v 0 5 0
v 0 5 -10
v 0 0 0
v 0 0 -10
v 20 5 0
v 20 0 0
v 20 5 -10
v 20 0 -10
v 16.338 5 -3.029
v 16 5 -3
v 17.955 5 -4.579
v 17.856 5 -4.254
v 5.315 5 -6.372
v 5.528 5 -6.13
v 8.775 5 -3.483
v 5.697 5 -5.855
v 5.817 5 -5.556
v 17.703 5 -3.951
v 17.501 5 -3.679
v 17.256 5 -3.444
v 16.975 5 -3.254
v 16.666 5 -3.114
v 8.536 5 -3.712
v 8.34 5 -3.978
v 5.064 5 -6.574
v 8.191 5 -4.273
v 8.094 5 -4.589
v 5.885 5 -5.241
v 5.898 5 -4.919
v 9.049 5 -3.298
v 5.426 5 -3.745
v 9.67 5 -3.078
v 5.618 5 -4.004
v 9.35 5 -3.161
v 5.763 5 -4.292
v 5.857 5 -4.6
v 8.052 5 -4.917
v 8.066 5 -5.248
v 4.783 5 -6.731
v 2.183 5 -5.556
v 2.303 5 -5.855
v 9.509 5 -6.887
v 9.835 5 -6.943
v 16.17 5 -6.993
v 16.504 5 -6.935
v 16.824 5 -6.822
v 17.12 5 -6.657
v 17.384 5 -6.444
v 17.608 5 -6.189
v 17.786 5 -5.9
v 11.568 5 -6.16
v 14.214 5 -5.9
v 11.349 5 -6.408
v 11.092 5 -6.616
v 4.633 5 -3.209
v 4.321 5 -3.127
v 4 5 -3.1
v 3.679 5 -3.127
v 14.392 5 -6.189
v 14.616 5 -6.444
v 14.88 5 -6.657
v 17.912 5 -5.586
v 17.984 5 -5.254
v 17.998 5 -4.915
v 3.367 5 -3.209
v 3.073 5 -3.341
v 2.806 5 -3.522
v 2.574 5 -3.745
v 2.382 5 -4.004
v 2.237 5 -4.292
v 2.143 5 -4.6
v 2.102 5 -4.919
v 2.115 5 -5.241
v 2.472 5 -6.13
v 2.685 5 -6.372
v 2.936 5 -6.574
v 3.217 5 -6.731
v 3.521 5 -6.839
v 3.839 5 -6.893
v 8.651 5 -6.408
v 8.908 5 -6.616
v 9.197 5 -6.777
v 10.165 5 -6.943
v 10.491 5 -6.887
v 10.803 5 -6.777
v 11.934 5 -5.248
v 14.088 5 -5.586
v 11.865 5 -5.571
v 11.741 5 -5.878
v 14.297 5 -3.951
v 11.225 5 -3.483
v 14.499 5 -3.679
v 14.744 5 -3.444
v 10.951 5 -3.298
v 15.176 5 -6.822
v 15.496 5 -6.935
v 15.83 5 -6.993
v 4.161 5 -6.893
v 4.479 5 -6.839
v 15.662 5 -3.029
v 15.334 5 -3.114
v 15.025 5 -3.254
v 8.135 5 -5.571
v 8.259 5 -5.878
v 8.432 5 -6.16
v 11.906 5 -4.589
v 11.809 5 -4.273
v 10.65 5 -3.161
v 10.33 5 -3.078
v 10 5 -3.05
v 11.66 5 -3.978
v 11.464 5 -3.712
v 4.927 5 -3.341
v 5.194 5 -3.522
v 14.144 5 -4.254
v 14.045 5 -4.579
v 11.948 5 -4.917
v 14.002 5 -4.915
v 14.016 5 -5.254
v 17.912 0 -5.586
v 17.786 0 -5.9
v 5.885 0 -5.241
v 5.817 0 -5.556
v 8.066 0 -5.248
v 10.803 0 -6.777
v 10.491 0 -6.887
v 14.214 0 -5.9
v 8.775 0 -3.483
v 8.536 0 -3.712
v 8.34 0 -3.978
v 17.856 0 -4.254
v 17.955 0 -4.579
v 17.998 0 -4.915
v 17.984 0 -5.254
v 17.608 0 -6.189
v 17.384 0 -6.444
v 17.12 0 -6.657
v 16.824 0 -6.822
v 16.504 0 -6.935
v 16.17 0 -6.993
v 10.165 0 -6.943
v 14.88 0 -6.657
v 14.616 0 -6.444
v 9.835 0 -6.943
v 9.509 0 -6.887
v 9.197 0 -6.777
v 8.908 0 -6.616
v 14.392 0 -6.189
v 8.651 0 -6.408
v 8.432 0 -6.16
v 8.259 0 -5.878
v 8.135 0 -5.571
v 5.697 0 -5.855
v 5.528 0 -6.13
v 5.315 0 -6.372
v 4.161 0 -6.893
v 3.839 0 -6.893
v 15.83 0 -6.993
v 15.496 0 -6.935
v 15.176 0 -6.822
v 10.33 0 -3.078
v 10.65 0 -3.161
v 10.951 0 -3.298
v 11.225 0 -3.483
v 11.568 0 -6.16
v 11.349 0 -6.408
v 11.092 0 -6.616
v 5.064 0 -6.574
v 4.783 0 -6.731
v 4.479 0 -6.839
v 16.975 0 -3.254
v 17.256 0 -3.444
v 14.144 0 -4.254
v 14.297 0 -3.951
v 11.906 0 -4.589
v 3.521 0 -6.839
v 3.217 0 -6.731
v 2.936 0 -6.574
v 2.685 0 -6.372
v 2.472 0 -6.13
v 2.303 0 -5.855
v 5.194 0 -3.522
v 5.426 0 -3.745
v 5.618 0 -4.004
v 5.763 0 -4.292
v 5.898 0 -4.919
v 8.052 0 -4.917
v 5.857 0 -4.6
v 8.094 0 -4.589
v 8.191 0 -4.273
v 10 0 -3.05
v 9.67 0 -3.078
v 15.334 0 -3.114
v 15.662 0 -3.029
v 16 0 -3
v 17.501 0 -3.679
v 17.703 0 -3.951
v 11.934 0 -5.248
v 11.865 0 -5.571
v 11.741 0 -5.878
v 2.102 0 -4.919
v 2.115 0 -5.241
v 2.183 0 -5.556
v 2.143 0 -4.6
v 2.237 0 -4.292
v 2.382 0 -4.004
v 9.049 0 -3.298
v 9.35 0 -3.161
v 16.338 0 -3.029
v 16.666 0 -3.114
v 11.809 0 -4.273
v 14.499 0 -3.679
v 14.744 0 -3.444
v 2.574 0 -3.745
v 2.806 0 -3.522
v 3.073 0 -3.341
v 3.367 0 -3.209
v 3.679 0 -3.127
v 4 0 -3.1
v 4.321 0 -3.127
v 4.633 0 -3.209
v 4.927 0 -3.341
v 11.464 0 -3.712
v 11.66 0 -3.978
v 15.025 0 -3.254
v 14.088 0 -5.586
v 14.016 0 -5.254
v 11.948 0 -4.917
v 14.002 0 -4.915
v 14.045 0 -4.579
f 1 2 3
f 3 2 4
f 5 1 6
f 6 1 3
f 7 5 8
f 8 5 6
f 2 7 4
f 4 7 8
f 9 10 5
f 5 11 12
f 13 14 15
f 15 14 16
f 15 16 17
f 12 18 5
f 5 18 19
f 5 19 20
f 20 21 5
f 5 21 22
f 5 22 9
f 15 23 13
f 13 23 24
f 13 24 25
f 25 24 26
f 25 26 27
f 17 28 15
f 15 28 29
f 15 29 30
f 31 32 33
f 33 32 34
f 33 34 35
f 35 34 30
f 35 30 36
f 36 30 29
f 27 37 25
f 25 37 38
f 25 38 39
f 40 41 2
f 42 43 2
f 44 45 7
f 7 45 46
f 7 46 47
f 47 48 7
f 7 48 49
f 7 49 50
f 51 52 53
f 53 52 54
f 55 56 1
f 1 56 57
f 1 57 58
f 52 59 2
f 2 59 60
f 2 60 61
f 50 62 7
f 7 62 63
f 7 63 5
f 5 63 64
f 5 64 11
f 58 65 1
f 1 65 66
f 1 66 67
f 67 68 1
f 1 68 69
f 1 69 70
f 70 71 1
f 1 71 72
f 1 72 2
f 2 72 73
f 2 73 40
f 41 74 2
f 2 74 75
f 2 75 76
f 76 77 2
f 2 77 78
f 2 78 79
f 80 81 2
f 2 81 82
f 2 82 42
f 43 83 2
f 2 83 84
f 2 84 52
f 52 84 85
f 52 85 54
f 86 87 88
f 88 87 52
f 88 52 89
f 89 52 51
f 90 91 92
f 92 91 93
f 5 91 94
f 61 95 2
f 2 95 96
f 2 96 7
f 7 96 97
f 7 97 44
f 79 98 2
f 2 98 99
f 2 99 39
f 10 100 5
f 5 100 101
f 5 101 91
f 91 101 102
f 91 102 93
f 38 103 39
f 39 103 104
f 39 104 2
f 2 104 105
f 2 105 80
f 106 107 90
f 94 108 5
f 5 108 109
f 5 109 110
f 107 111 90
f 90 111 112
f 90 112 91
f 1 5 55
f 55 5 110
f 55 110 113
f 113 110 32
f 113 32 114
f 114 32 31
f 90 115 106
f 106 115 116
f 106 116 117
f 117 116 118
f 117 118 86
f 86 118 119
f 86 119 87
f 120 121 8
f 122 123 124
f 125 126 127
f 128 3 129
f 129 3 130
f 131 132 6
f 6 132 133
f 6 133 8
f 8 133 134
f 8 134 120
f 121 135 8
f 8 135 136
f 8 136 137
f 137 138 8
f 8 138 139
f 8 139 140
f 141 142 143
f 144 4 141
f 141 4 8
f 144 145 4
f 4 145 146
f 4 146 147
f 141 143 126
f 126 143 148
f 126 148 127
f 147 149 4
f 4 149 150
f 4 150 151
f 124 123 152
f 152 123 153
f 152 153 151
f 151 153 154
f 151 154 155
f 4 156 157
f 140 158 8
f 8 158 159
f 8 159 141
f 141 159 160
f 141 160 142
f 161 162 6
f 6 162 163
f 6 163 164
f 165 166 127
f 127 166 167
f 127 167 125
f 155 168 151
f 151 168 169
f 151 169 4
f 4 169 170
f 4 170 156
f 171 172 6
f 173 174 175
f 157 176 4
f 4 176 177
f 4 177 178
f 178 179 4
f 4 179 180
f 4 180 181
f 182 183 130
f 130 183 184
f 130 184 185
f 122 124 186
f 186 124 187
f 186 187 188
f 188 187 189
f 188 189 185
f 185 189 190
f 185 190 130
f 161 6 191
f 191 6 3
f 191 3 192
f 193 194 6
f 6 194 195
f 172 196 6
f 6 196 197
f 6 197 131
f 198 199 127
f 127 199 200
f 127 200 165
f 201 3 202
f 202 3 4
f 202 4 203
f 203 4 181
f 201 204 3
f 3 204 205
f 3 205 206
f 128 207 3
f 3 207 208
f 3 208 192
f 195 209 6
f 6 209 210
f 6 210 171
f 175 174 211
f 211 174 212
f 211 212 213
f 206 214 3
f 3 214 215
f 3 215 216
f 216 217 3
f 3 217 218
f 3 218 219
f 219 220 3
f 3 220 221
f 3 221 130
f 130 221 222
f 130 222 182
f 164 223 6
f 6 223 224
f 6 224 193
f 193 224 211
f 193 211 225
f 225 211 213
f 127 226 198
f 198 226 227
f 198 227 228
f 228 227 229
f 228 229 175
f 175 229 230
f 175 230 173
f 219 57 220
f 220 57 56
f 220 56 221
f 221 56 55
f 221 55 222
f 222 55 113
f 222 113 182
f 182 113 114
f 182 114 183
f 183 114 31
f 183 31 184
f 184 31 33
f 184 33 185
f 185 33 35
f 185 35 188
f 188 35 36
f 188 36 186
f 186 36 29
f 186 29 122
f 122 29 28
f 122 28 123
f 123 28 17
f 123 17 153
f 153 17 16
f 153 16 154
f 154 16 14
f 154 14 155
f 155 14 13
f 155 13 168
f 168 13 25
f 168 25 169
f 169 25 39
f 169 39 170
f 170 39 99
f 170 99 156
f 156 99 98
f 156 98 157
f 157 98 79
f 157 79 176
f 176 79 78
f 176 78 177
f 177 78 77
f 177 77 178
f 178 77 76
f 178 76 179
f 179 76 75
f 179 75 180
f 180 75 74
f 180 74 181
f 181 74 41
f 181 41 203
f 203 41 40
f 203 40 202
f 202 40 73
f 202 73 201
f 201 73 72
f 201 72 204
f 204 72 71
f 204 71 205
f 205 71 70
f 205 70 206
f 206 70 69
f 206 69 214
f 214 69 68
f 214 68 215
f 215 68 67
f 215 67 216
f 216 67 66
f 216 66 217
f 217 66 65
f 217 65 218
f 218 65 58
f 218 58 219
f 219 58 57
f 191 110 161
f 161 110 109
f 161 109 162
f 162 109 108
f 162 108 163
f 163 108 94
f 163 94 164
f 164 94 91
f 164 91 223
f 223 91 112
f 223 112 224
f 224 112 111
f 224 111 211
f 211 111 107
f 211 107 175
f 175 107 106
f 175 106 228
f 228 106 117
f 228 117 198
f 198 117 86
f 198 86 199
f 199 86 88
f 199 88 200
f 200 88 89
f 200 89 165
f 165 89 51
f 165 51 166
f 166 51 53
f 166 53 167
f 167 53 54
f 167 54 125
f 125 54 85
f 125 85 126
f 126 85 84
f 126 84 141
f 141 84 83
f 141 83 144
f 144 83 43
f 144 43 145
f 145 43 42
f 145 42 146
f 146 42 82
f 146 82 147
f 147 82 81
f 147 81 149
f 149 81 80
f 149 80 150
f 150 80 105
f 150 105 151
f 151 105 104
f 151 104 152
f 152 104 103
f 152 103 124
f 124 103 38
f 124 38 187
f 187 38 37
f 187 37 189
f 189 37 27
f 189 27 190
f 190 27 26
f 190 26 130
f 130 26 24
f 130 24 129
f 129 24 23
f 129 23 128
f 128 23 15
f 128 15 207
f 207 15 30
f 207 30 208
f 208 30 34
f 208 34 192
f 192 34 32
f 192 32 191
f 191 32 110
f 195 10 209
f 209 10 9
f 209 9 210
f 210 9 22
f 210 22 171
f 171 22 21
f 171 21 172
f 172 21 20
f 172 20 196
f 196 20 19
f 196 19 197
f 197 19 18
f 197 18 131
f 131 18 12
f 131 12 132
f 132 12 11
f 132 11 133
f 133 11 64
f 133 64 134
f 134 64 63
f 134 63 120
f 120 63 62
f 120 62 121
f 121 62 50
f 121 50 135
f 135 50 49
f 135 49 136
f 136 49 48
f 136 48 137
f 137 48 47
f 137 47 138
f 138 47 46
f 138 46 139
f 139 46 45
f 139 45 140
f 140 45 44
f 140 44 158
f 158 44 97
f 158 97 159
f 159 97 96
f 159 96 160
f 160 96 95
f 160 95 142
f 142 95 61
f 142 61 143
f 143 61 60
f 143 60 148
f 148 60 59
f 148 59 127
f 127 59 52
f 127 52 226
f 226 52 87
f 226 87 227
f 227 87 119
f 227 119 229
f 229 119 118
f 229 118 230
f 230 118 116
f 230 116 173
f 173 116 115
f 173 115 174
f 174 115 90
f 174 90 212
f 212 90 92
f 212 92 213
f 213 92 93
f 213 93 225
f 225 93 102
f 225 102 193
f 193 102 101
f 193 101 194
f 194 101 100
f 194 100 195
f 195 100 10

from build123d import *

# Parameters (mm, degrees)
SKETCH1_W                   = 20
SKETCH1_H                   = 10
BOSS_EXTRUDE1_DEPTH         = 5
TAP_DRILL_FOR_M4X0_7_TAP1_D = 3.8
TAP_DRILL_FOR_M4X0_7_TAP2_D = 3.9
TAP_DRILL_FOR_M4X0_7_TAP3_D = 4


with BuildPart() as part:
    # Sketch1 → Boss-Extrude1 (new body)
    with BuildSketch(Plane(origin=(0, 0, 0), x_dir=(1, 0, 0), z_dir=(0, 1, 0))):
        with Locations((10, 5)):
            Rectangle(SKETCH1_W, SKETCH1_H)
    extrude(amount=BOSS_EXTRUDE1_DEPTH)

    # Tap Drill for M4x0.7 Tap1 (through all)
    with Locations(Plane(origin=(4, 5, -5), x_dir=(0, 0, 1), z_dir=(0, 1, 0))):
        with Locations((0, 0)):
            Hole(TAP_DRILL_FOR_M4X0_7_TAP1_D / 2)

    # Tap Drill for M4x0.7 Tap2 (through all)
    with Locations(Plane(origin=(10, 5, -5), x_dir=(0, 0, 1), z_dir=(0, 1, 0))):
        with Locations((0, 0)):
            Hole(TAP_DRILL_FOR_M4X0_7_TAP2_D / 2)

    # Tap Drill for M4x0.7 Tap3 (through all)
    with Locations(Plane(origin=(16, 5, -5), x_dir=(0, 0, 1), z_dir=(0, 1, 0))):
        with Locations((0, 0)):
            Hole(TAP_DRILL_FOR_M4X0_7_TAP3_D / 2)


solid = part.part
